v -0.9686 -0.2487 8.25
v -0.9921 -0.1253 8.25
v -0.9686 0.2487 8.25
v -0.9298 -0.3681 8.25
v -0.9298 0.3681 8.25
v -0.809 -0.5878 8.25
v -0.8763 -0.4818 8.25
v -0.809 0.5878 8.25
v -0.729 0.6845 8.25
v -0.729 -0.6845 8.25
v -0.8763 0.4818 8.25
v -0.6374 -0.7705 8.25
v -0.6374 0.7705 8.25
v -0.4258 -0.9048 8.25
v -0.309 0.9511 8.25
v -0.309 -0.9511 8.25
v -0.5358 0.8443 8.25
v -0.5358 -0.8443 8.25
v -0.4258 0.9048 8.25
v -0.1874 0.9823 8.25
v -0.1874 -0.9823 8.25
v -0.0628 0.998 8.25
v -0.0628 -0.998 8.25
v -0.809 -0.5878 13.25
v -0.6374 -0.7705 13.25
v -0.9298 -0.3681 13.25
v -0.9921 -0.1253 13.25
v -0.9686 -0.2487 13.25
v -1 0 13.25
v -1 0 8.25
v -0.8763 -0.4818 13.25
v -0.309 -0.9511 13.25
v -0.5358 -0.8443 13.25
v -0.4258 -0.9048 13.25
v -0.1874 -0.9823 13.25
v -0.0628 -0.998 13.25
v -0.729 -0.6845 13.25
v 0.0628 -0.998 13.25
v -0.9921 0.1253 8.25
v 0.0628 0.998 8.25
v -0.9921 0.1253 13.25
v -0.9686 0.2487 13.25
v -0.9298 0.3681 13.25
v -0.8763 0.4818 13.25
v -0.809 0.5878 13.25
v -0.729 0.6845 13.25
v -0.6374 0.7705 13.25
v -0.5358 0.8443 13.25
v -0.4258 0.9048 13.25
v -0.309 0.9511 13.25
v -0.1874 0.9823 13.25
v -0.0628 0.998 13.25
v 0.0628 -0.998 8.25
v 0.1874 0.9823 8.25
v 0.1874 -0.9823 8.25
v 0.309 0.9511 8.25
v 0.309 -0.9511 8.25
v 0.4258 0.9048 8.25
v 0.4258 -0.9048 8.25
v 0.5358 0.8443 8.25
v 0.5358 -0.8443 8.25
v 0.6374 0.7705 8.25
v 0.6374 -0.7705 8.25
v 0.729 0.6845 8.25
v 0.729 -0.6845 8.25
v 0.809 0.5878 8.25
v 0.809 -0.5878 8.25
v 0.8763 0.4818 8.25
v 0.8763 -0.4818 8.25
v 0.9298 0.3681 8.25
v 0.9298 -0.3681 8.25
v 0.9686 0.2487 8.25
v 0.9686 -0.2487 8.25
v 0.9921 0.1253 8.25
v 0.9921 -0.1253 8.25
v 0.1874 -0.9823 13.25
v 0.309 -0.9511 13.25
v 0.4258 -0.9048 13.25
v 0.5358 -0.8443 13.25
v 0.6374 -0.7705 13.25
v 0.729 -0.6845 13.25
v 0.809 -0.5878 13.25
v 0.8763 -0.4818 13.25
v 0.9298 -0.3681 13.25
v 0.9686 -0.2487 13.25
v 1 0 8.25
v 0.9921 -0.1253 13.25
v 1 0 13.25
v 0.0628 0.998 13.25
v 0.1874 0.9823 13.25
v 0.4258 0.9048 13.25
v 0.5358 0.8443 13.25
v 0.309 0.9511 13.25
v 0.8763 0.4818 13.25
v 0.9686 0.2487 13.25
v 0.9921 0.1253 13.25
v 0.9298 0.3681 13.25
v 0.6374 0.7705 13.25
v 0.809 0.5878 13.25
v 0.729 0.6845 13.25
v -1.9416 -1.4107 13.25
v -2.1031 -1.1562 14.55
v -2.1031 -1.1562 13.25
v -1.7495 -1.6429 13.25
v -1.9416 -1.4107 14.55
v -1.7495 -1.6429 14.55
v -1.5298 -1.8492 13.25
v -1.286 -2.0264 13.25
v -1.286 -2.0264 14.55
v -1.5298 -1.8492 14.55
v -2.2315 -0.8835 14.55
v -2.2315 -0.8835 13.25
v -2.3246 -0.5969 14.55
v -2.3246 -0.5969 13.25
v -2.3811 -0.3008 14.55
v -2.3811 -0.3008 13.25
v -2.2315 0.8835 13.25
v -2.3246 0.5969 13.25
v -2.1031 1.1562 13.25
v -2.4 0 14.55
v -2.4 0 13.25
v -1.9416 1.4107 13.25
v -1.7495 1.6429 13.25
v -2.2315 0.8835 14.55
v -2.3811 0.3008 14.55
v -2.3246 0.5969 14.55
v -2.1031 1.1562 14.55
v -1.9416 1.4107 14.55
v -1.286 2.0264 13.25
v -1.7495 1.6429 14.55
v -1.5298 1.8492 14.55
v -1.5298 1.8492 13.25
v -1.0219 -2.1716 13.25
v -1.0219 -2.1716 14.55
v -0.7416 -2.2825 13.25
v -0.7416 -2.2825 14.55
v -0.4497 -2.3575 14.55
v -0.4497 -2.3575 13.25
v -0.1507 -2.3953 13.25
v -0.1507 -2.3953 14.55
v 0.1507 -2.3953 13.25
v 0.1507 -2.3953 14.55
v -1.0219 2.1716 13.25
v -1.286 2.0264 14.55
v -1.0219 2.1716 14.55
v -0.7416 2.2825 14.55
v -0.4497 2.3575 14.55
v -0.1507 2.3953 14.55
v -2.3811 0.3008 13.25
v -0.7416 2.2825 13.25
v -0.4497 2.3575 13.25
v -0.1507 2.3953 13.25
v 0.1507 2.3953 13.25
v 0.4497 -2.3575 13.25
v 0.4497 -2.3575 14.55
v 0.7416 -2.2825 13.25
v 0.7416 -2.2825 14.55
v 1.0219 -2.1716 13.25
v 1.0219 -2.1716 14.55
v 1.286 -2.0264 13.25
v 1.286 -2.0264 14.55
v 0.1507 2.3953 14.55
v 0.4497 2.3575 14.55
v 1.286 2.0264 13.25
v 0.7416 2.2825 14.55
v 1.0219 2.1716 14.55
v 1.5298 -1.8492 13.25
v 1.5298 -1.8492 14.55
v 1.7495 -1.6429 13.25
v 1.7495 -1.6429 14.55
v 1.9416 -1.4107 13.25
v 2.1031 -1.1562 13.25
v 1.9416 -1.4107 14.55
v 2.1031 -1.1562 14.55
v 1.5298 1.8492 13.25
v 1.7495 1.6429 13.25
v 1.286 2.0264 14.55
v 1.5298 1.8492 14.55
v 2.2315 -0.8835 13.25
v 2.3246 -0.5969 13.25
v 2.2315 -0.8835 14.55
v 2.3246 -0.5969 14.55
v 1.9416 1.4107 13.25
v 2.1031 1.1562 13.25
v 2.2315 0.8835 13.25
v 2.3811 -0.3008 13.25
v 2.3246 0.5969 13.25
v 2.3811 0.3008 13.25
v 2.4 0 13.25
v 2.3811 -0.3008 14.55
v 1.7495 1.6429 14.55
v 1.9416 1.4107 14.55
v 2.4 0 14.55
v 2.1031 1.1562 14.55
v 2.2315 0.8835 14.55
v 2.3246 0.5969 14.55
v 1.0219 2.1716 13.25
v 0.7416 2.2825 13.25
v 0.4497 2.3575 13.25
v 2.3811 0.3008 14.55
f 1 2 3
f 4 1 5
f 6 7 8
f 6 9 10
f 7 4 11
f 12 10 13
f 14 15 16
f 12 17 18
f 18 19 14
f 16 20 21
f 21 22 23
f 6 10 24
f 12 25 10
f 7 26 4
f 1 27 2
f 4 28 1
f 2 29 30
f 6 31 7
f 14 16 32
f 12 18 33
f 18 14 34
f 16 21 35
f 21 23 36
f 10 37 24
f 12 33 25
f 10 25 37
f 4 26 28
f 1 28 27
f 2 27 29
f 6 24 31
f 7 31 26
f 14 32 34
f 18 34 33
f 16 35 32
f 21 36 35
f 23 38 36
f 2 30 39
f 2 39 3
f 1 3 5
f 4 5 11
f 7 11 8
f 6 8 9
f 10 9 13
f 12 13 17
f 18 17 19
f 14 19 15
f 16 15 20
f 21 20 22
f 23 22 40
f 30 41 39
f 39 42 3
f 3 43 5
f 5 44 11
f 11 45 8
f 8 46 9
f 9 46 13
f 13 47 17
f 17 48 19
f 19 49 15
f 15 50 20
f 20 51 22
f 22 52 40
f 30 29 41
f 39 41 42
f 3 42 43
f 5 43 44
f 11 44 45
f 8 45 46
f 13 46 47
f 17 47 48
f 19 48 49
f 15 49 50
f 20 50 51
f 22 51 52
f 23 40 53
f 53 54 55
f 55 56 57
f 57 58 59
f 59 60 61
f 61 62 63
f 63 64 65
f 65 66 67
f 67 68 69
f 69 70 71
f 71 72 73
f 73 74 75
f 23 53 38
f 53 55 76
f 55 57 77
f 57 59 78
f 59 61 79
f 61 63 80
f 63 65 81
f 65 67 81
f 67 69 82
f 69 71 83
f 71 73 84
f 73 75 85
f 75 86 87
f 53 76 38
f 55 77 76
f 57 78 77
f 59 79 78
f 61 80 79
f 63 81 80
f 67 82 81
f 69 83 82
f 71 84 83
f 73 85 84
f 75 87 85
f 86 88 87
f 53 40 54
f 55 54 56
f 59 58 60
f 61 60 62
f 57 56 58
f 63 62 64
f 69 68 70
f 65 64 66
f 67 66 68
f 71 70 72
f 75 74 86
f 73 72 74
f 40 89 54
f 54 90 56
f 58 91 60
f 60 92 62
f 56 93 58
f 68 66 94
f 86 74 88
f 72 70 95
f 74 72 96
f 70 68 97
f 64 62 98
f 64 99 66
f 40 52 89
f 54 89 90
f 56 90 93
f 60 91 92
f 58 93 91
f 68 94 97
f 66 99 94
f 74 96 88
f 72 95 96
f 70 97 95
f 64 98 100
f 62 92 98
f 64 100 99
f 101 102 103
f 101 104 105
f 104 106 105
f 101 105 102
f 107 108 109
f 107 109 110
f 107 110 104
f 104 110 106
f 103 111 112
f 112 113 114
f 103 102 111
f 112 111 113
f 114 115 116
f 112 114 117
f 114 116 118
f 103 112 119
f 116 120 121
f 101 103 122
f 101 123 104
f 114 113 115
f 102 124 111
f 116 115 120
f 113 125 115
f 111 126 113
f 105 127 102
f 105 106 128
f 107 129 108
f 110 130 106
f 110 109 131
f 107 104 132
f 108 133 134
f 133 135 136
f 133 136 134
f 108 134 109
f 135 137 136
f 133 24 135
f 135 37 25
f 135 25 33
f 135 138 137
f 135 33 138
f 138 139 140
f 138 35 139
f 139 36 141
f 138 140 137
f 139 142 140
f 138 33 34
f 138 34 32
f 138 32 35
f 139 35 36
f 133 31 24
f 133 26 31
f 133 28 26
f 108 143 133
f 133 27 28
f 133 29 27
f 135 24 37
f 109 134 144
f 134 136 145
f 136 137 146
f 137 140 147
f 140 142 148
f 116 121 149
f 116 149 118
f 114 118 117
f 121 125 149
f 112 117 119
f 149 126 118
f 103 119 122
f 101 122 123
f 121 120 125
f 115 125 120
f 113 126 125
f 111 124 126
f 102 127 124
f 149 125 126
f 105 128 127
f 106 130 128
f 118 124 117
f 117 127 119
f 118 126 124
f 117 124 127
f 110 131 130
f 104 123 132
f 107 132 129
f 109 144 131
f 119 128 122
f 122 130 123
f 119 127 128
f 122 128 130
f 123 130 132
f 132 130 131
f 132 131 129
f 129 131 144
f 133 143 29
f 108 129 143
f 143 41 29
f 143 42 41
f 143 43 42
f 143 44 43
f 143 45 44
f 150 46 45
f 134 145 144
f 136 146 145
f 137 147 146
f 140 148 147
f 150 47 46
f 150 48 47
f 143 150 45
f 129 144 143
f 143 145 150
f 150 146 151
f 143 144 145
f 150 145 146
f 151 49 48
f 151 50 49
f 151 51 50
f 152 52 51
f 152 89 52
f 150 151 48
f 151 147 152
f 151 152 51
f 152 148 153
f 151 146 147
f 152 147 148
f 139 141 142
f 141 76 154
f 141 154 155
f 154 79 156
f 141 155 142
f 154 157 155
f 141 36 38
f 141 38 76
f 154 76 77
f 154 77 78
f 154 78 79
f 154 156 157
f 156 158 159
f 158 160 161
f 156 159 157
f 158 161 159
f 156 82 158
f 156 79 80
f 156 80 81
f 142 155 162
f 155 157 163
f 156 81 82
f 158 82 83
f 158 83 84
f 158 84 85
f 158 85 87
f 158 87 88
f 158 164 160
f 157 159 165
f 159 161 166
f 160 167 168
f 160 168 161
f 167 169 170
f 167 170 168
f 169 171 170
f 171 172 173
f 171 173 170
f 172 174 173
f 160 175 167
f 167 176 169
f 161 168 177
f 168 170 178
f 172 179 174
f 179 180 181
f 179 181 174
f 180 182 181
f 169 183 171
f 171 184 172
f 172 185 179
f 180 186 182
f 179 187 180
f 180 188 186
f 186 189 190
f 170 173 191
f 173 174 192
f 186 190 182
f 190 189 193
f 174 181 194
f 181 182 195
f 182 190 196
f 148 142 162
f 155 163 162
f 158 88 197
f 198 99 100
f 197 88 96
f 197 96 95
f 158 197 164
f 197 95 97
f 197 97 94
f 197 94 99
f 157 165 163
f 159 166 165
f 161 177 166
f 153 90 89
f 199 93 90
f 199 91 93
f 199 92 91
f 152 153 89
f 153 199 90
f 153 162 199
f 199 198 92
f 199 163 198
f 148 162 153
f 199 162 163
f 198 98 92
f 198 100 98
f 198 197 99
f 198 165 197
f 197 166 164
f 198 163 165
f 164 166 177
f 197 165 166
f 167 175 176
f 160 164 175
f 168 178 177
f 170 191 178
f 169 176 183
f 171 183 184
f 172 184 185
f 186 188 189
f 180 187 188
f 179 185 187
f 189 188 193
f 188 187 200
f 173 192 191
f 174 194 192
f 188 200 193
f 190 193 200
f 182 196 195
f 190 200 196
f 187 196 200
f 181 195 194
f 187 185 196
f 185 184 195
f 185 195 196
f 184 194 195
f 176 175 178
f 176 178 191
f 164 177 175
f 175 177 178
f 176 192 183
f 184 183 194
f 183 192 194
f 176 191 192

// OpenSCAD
$fn = 50;

difference() {
	union() {
		translate(v = [0, 0, 8.25]) {
			cylinder(h = 5, r = 1.0);
		}
		translate(v = [0, 0, 13.25]) {
			cylinder(h = 1.3, r = 2.4);
		}
	}
	union();
}
